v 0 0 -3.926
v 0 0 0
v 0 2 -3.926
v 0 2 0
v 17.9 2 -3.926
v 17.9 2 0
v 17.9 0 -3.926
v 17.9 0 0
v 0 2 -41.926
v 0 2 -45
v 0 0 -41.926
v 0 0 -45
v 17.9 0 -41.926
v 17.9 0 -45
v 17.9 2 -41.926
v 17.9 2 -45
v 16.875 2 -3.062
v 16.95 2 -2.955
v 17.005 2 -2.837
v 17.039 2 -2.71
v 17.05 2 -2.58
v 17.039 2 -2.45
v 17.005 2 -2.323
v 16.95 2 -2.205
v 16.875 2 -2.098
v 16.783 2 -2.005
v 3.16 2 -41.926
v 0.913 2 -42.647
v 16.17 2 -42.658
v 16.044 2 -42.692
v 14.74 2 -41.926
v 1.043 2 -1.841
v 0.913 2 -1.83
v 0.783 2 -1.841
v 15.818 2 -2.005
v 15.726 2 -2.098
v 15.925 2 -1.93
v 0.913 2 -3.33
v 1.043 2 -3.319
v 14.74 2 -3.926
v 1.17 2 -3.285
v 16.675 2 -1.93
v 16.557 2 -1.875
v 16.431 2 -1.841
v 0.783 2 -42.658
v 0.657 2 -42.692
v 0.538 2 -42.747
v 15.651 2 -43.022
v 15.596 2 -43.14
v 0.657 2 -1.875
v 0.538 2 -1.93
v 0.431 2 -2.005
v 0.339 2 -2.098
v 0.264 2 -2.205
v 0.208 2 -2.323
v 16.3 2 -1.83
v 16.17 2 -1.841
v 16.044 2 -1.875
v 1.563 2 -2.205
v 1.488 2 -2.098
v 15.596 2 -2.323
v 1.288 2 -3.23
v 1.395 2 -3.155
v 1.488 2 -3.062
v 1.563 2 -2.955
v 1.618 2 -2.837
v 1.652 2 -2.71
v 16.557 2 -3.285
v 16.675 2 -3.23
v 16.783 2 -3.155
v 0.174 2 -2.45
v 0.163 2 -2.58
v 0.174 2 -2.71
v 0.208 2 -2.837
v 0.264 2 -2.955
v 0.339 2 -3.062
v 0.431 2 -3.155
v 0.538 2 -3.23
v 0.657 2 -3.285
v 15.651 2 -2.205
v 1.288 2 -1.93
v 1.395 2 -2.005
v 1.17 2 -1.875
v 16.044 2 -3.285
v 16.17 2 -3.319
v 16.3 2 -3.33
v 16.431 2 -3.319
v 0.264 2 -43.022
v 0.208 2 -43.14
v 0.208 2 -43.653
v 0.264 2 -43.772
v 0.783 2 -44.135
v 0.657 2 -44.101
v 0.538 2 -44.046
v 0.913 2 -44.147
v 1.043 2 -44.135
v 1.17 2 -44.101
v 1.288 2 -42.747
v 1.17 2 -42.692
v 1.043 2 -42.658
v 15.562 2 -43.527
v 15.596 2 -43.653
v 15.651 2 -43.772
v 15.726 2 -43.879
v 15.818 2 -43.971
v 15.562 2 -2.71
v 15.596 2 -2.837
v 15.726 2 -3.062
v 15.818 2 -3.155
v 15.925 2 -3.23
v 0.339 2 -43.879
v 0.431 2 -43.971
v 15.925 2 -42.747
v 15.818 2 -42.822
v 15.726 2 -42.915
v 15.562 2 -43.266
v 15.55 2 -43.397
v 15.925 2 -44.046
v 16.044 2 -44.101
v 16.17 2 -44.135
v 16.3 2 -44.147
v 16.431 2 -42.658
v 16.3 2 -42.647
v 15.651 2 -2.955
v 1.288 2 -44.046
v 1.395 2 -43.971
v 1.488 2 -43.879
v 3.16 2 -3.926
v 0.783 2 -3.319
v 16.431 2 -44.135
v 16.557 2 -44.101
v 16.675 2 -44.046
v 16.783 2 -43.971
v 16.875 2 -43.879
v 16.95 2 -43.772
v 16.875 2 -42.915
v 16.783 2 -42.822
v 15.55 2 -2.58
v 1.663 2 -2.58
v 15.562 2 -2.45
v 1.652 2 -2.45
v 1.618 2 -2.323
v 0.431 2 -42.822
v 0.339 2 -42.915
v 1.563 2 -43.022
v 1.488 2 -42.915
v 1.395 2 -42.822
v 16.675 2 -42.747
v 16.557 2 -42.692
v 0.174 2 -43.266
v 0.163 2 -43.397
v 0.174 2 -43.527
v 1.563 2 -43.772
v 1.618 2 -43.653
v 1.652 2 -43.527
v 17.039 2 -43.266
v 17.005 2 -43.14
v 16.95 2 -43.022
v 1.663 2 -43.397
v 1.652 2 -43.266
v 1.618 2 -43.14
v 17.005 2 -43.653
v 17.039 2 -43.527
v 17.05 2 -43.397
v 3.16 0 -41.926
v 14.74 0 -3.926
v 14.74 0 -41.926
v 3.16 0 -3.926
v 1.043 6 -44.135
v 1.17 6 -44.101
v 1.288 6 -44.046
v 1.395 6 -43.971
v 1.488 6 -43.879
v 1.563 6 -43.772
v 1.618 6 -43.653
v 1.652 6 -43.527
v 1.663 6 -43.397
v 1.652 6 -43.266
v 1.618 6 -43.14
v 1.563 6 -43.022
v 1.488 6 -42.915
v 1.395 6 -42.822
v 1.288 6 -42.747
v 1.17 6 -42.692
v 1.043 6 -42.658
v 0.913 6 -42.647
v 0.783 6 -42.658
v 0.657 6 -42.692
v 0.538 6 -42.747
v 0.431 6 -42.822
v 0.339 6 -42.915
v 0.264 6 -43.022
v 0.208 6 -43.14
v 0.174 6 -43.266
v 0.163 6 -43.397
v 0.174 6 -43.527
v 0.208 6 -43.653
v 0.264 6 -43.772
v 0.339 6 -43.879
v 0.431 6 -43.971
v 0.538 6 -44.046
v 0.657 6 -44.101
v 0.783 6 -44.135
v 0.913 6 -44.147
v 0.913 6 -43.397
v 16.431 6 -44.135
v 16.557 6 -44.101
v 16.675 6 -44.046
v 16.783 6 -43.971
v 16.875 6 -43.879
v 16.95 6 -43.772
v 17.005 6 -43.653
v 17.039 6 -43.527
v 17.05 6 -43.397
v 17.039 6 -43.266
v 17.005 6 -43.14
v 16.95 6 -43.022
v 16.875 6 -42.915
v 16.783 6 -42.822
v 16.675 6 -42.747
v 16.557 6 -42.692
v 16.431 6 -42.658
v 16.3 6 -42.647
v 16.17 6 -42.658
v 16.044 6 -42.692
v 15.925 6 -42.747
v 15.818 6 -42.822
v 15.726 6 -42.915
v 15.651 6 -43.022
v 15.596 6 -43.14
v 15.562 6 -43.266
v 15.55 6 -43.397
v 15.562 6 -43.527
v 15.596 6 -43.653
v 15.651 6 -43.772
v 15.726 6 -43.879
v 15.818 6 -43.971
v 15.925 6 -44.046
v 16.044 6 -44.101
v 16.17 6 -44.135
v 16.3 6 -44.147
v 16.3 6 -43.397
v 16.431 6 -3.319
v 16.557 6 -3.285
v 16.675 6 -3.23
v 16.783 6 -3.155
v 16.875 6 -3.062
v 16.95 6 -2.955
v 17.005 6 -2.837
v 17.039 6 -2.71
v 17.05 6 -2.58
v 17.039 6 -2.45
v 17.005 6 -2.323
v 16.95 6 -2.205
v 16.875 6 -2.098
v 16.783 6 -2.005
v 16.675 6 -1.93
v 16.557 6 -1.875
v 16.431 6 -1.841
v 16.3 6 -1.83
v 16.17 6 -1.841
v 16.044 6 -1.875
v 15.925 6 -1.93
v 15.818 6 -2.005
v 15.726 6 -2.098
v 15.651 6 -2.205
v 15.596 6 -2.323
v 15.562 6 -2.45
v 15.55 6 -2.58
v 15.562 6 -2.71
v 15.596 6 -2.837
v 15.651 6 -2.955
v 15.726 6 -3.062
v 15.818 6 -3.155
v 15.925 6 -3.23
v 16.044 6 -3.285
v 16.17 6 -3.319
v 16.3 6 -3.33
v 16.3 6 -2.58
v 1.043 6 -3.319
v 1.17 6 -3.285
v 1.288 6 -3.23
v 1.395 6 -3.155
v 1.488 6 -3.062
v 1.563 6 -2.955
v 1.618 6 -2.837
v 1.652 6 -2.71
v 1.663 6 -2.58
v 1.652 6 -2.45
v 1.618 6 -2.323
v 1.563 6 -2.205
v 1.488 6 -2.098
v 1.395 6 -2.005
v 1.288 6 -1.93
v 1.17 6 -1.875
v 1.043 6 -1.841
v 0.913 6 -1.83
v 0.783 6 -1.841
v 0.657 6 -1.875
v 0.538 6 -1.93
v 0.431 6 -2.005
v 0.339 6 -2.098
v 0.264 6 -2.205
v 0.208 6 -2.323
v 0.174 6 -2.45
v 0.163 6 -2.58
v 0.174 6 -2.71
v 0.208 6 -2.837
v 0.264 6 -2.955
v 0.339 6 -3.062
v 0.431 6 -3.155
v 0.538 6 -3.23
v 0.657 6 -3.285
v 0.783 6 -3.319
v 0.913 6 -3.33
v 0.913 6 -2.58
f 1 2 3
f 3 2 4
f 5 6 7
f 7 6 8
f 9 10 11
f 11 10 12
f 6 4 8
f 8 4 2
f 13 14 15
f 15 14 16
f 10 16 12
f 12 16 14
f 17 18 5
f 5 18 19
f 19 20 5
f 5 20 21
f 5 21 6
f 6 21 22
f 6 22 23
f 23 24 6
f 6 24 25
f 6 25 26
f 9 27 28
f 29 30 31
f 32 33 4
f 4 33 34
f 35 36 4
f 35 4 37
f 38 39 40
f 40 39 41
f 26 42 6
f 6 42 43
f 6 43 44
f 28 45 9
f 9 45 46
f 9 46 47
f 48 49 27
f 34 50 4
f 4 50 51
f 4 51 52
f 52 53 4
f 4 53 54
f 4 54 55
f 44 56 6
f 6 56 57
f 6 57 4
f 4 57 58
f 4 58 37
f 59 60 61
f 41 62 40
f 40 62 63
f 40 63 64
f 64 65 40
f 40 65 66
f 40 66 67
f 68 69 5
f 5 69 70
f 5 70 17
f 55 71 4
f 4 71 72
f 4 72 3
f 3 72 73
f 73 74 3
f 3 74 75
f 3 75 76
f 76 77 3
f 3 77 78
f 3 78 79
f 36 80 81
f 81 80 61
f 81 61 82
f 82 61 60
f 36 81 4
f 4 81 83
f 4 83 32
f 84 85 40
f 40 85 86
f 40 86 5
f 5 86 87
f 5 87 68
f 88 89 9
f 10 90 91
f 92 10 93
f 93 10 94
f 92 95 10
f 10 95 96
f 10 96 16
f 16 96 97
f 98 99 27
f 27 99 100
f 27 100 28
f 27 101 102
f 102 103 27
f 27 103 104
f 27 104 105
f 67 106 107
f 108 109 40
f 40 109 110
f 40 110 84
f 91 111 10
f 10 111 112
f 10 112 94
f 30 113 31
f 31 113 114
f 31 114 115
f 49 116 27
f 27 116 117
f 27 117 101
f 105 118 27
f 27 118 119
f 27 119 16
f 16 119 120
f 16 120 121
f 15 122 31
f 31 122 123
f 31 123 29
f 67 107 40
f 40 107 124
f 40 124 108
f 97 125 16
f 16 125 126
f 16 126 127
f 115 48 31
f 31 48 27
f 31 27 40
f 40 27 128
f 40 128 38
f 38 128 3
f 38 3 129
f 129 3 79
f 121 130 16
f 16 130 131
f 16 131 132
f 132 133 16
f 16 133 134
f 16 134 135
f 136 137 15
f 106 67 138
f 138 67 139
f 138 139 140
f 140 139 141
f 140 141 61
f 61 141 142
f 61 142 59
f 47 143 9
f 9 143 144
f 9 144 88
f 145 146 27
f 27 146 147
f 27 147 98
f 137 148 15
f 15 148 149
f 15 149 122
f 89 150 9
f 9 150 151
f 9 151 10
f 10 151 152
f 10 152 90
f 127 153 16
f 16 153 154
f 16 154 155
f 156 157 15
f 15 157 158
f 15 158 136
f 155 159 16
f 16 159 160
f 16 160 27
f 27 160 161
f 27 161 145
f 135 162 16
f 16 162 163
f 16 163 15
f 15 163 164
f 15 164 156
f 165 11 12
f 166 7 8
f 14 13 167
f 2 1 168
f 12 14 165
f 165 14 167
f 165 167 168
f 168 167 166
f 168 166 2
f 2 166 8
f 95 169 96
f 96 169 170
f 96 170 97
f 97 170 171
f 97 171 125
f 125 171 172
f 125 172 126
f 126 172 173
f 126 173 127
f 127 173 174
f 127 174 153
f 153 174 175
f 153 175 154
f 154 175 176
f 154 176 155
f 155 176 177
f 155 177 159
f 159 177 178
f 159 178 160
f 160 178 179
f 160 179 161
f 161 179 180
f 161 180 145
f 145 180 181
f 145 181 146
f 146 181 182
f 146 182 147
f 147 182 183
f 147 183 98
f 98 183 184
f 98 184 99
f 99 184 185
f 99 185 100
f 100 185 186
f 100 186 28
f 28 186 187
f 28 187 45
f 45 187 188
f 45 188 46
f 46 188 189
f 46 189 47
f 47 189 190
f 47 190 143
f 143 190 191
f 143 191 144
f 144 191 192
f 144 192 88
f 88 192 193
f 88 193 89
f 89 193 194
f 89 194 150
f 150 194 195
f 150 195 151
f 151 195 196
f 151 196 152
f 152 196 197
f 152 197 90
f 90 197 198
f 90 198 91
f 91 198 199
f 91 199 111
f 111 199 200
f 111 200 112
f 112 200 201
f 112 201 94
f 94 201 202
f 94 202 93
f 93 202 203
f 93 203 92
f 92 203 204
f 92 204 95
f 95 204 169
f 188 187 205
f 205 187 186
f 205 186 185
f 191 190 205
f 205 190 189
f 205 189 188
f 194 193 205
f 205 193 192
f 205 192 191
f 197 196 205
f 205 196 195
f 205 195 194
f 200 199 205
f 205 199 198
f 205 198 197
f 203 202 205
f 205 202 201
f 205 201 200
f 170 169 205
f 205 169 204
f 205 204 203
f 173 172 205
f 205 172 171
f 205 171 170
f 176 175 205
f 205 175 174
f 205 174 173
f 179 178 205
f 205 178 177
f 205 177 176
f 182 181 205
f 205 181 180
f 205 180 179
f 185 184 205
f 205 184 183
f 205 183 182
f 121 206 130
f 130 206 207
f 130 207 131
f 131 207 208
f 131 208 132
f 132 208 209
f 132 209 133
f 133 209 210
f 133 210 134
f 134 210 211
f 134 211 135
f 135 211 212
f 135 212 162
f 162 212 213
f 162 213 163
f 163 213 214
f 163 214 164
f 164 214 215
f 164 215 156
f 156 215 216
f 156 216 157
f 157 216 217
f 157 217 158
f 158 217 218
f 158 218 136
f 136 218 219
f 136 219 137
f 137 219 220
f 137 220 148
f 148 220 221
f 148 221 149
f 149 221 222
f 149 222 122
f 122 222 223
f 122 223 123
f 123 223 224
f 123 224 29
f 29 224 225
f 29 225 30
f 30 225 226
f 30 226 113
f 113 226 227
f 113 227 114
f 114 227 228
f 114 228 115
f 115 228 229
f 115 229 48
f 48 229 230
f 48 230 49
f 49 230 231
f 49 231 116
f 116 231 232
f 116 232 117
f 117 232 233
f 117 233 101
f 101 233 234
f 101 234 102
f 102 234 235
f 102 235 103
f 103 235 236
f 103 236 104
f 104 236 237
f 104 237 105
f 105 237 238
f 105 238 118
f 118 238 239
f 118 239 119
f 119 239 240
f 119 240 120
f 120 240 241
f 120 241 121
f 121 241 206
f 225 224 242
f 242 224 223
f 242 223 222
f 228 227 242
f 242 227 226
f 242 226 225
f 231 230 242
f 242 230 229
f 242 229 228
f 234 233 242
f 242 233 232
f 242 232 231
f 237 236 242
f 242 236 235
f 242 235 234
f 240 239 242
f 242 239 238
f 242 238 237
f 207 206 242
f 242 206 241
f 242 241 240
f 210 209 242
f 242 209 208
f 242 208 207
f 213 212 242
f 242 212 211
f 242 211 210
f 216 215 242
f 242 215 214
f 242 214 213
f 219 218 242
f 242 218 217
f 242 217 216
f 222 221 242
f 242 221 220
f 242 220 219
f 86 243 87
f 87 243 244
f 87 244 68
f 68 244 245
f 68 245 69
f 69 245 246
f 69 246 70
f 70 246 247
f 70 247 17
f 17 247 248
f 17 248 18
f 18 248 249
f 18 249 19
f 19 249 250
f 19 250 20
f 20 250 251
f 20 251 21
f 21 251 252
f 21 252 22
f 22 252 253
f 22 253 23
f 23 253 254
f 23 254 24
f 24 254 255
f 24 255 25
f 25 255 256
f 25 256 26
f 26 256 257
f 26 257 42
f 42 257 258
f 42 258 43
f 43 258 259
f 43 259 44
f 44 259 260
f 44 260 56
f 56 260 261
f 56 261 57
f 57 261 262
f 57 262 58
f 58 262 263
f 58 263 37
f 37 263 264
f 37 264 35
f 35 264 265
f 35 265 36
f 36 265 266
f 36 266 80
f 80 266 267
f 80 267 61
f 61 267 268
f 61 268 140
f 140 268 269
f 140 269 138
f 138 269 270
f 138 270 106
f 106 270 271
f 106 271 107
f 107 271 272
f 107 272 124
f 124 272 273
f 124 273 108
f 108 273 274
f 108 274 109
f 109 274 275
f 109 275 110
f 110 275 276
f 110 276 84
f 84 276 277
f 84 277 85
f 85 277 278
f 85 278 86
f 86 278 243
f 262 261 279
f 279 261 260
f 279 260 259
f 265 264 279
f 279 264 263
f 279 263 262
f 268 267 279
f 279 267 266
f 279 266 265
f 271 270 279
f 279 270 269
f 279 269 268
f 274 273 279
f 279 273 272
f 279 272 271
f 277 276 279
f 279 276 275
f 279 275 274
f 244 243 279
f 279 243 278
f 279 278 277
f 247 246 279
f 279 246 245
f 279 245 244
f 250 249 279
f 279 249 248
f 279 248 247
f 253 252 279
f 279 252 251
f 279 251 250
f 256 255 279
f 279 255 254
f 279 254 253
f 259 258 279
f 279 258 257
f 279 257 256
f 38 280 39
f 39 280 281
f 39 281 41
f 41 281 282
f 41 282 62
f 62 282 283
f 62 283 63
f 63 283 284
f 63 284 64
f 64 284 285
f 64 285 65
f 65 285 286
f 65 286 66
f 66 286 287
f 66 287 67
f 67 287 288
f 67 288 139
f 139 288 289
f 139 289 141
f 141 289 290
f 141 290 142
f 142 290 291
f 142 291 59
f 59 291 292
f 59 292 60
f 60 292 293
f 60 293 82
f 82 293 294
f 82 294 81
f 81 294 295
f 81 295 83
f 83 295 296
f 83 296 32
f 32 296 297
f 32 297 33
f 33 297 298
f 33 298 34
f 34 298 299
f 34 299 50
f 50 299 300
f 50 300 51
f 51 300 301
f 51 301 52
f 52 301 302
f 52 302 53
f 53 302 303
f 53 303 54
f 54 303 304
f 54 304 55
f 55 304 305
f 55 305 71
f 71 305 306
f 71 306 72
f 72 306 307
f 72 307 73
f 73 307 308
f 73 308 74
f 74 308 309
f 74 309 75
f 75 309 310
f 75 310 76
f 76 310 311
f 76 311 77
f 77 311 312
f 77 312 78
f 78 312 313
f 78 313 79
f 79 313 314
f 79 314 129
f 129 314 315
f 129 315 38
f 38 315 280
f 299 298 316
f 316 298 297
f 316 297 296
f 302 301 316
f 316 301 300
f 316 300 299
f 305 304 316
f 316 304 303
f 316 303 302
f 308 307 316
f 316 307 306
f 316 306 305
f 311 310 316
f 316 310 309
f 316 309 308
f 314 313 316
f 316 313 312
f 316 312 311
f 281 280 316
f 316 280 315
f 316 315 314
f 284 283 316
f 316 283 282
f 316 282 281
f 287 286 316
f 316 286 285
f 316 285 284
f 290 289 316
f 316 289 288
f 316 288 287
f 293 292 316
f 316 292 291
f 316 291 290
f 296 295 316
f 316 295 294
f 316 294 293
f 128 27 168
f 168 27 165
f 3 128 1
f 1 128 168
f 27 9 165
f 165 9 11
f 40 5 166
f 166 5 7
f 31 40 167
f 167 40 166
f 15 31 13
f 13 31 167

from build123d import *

# Parameters (mm, degrees)
SKETCH1_W           = 17.9
SKETCH1_H           = 45
BOSS_EXTRUDE1_DEPTH = 2
SKETCH2_R           = 0.75
BOSS_EXTRUDE2_DEPTH = 4
SKETCH4_W           = 3.16
SKETCH4_H           = 38
CUT_EXTRUDE1_DEPTH  = 3.5


with BuildPart() as part:
    # Sketch1 → Boss-Extrude1 (new body)
    with BuildSketch(Plane(origin=(0, 0, 0), x_dir=(1, 0, 0), z_dir=(0, 1, 0))):
        with Locations((8.95, 22.5)):
            Rectangle(SKETCH1_W, SKETCH1_H)
    extrude(amount=BOSS_EXTRUDE1_DEPTH)

    # Sketch2 → Boss-Extrude2 (add)
    with BuildSketch(Plane(origin=(0, 2, 0), x_dir=(1, 0, 0), z_dir=(0, 1, 0))):
        with Locations((0.913071853, 43.396593807)):
            Circle(SKETCH2_R)
        with Locations((16.300481816, 43.396593807)):
            Circle(SKETCH2_R)
        with Locations((16.300481816, 2.58)):
            Circle(SKETCH2_R)
        with Locations((0.913071853, 2.58)):
            Circle(SKETCH2_R)
    extrude(amount=BOSS_EXTRUDE2_DEPTH)

    # Sketch4 → Cut-Extrude1 (cut)
    with BuildSketch(Plane(origin=(0, 2, 0), x_dir=(1, 0, 0), z_dir=(0, 1, 0))):
        with Locations((1.58, 22.925686587)):
            Rectangle(SKETCH4_W, SKETCH4_H)
        with Locations((16.32, 22.925686587)):
            Rectangle(SKETCH4_W, SKETCH4_H)
    extrude(amount=-CUT_EXTRUDE1_DEPTH, mode=Mode.SUBTRACT)


solid = part.part
